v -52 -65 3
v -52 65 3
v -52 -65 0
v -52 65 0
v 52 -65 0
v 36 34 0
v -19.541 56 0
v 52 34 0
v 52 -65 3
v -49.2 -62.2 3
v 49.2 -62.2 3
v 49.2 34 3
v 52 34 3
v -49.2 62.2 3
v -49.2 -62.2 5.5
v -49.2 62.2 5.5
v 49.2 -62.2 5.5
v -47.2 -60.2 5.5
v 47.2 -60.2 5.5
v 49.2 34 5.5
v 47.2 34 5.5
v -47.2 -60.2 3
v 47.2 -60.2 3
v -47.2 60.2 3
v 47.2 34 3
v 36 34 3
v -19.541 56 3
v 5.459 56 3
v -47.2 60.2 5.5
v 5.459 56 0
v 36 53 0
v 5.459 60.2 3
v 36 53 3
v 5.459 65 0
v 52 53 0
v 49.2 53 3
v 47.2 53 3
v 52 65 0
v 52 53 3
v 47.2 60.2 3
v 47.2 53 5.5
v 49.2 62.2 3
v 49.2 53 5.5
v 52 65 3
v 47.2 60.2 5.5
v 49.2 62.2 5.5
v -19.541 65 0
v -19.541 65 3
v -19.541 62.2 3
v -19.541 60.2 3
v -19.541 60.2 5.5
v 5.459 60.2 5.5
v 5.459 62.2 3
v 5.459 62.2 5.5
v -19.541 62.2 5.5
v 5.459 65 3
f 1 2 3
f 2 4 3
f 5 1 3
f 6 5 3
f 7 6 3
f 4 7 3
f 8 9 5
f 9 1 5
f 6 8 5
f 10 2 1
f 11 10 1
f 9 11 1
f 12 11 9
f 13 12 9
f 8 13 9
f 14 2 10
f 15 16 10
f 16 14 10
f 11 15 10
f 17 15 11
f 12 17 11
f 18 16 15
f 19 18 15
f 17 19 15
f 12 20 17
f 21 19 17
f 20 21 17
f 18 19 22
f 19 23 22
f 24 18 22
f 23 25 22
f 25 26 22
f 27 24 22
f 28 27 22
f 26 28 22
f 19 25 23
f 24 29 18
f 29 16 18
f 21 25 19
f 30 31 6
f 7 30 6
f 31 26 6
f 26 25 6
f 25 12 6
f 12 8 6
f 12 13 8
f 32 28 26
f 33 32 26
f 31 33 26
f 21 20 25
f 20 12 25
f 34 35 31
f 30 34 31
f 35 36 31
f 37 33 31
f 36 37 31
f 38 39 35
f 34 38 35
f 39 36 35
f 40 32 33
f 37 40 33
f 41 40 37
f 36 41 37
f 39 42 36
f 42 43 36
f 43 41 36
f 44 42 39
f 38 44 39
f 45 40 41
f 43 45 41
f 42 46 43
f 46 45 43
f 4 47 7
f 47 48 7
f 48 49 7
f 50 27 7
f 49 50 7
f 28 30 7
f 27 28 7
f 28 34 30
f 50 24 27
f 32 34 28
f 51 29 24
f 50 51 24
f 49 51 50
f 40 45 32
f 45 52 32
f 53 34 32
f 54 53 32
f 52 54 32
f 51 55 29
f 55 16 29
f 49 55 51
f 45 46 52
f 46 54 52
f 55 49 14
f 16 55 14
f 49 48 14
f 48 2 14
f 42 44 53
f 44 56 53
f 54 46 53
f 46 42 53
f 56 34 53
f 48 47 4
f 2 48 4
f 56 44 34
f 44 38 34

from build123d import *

# Parameters (mm, degrees)
SKETCH_1_W          = 104
SKETCH_1_H          = 130
EXTRUDE_1_DEPTH     = 3
SKETCH_2_W          = 98.4
SKETCH_2_H          = 124.4
SKETCH_2_W_2        = 94.4
SKETCH_2_H_2        = 120.4
EXTRUDE_2_DEPTH     = 2.5
SKETCH_3_W          = 16
SKETCH_3_H          = 19
SKETCH_3_W_2        = 25
SKETCH_3_H_2        = 9
CUT_EXTRUDE_1_DEPTH = 84.422119369


with BuildPart() as part:
    # 草圖1 → 填料-伸長1 (new body)
    with BuildSketch(Plane.XY):
        Rectangle(SKETCH_1_W, SKETCH_1_H)
    extrude(amount=EXTRUDE_1_DEPTH)

    # 草圖2 → 填料-伸長2 (add)
    with BuildSketch(Plane.XY.offset(3)):
        Rectangle(SKETCH_2_W, SKETCH_2_H)
        Rectangle(SKETCH_2_W_2, SKETCH_2_H_2, mode=Mode.SUBTRACT)
    extrude(amount=EXTRUDE_2_DEPTH)

    # 草圖3 → 除料-伸長1 (cut, through all)
    with BuildSketch(Plane(origin=(0, 0, 0), x_dir=(-1, 0, 0), z_dir=(0, 0, -1))):
        with Locations((-44, 43.5)):
            Rectangle(SKETCH_3_W, SKETCH_3_H)
        with Locations((7.041187405, 60.5)):
            Rectangle(SKETCH_3_W_2, SKETCH_3_H_2)
    extrude(amount=-CUT_EXTRUDE_1_DEPTH, mode=Mode.SUBTRACT)


solid = part.part
